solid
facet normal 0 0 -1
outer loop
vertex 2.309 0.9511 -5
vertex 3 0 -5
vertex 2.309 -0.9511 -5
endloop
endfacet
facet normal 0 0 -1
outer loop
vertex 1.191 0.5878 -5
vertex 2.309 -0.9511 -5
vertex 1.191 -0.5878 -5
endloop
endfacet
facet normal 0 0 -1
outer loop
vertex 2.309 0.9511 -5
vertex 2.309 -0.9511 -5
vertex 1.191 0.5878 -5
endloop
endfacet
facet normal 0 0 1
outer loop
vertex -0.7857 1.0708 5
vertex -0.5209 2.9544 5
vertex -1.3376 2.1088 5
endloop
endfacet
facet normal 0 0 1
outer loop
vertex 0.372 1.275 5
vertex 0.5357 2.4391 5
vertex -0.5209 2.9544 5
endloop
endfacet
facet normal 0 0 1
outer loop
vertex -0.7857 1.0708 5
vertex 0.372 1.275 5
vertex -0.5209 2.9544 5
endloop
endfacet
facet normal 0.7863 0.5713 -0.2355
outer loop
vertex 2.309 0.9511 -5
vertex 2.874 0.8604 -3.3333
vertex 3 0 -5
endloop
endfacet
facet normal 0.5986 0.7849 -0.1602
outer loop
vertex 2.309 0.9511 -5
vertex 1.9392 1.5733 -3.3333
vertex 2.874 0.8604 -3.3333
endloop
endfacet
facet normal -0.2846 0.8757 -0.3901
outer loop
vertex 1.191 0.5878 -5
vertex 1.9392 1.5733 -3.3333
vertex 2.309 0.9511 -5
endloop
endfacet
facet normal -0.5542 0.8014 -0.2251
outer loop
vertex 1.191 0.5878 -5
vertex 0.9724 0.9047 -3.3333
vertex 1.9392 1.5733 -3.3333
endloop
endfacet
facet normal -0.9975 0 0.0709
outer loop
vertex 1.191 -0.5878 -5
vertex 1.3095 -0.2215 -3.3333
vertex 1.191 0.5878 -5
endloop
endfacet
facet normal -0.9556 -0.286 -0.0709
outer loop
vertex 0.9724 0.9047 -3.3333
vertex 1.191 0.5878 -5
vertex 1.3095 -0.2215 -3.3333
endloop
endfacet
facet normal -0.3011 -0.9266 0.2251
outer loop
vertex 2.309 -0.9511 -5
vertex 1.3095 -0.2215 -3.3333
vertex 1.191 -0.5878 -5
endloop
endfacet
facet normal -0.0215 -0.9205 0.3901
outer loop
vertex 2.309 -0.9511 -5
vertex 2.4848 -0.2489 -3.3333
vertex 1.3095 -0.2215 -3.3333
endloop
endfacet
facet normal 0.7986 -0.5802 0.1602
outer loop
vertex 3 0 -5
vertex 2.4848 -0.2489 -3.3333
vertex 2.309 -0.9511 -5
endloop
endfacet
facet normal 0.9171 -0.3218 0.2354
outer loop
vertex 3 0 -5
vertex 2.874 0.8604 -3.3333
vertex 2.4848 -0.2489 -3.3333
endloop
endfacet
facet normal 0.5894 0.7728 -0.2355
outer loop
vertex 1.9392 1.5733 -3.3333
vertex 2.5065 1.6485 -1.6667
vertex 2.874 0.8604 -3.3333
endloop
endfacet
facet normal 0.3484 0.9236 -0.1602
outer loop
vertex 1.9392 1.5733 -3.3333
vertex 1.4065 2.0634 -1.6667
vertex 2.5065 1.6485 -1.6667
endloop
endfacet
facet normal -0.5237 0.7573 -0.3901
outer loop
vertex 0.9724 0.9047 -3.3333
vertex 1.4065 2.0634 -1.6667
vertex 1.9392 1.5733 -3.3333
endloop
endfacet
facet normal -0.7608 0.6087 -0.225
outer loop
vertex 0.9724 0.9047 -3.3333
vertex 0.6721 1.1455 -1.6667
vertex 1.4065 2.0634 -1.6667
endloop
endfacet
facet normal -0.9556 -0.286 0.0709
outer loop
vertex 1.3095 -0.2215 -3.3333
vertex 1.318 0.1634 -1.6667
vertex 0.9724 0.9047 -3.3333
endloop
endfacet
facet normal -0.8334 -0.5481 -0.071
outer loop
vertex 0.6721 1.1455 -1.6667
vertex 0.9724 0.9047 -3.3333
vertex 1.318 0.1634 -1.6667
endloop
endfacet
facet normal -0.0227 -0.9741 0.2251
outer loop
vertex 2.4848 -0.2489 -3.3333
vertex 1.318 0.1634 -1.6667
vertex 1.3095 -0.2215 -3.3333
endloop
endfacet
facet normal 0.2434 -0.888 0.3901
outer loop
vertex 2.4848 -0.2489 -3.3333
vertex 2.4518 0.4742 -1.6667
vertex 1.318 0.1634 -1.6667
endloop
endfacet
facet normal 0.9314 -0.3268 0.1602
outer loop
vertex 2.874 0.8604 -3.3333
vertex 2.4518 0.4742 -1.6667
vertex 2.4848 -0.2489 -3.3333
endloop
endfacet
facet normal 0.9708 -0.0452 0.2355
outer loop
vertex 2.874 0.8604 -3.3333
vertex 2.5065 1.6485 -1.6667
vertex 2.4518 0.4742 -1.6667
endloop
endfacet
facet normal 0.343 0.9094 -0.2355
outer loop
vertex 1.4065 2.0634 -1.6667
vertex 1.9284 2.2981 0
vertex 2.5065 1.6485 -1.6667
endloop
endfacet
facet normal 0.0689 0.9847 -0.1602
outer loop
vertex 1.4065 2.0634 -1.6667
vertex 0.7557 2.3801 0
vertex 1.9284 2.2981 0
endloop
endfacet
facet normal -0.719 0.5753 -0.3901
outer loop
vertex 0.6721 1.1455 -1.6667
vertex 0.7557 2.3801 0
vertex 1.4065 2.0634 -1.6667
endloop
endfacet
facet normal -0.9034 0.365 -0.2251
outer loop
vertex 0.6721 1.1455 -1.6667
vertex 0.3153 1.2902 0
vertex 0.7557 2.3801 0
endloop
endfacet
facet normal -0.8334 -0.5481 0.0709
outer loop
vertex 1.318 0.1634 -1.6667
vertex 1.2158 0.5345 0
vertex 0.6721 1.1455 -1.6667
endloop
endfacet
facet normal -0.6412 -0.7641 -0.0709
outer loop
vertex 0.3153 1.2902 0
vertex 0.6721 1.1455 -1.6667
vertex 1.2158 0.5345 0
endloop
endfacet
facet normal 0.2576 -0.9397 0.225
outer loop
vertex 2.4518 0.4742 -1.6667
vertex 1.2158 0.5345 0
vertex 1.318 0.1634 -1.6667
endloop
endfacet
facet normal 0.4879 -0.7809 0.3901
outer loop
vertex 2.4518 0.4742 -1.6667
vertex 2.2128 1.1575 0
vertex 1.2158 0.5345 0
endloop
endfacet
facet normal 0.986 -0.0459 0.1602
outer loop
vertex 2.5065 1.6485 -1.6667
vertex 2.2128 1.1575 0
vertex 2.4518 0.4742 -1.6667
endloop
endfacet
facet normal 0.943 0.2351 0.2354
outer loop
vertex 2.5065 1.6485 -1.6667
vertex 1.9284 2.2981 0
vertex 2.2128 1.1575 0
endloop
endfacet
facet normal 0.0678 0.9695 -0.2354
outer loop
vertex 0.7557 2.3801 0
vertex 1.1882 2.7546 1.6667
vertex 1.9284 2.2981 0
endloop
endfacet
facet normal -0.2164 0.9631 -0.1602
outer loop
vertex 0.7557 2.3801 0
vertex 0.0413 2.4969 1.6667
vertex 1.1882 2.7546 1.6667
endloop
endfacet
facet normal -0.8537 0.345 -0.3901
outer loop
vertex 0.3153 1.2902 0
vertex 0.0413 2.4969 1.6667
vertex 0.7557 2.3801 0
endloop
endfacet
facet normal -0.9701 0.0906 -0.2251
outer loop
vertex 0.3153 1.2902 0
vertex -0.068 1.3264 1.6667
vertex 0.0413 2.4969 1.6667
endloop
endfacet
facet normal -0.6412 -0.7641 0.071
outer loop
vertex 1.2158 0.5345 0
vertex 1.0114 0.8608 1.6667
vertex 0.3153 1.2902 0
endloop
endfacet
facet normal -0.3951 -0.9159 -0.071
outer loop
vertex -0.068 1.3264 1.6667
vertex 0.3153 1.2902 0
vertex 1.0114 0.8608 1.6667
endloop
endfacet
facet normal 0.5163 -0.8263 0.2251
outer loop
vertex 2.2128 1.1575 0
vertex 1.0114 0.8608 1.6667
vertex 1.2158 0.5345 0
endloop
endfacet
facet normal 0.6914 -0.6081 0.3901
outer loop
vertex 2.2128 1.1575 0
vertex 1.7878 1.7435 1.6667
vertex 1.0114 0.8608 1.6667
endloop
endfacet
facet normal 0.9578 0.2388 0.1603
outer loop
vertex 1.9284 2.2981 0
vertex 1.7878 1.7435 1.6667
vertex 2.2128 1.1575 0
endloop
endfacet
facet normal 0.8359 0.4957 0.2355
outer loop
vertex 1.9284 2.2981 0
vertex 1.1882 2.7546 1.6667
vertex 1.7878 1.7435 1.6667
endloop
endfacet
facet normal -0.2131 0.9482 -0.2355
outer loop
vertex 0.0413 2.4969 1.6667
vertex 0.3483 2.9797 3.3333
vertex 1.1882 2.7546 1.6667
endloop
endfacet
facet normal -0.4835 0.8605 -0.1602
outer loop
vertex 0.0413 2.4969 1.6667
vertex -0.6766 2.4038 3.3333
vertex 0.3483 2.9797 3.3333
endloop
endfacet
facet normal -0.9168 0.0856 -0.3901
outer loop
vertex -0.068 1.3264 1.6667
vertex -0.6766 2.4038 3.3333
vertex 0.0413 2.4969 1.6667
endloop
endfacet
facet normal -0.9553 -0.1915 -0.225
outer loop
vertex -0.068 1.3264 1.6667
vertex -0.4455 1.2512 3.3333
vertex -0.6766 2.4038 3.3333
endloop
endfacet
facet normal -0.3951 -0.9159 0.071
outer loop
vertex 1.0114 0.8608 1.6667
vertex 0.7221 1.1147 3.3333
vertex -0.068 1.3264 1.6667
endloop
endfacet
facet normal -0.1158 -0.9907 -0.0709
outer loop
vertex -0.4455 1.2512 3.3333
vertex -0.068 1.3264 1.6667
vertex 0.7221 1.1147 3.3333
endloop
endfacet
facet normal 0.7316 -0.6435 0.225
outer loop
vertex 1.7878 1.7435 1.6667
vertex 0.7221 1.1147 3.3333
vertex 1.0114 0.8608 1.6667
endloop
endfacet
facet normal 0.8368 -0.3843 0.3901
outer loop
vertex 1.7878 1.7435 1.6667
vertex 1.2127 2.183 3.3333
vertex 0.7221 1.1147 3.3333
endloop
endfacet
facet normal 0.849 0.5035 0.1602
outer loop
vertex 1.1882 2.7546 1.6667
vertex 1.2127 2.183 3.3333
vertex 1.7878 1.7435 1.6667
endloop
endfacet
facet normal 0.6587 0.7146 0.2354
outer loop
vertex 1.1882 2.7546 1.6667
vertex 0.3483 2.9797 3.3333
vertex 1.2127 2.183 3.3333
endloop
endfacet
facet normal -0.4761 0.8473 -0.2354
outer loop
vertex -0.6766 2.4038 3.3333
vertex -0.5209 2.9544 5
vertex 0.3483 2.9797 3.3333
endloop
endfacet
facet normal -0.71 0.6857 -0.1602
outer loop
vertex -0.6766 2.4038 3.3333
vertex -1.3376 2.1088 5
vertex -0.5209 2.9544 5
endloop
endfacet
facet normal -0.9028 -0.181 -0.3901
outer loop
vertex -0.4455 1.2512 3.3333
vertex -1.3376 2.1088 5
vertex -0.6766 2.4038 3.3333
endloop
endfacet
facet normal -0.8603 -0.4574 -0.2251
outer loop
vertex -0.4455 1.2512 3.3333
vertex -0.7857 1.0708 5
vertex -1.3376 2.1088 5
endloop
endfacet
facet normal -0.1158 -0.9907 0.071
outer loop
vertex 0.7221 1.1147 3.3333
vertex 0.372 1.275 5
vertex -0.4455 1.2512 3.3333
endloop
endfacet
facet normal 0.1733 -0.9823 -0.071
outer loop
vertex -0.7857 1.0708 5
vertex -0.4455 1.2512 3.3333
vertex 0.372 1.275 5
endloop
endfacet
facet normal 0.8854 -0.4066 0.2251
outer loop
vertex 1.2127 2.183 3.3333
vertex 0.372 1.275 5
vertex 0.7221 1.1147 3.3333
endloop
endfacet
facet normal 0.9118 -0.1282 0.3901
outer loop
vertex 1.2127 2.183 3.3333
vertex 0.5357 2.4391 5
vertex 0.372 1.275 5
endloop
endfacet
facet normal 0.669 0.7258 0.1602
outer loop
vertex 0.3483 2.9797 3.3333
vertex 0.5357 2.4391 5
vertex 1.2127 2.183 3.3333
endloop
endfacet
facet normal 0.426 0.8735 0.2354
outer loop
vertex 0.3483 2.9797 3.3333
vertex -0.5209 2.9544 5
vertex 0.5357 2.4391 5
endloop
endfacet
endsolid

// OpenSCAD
linear_extrude(height = 10, center = true, convexity = 10, twist = -100)
translate([2, 0, 0])
circle(r = 1);
